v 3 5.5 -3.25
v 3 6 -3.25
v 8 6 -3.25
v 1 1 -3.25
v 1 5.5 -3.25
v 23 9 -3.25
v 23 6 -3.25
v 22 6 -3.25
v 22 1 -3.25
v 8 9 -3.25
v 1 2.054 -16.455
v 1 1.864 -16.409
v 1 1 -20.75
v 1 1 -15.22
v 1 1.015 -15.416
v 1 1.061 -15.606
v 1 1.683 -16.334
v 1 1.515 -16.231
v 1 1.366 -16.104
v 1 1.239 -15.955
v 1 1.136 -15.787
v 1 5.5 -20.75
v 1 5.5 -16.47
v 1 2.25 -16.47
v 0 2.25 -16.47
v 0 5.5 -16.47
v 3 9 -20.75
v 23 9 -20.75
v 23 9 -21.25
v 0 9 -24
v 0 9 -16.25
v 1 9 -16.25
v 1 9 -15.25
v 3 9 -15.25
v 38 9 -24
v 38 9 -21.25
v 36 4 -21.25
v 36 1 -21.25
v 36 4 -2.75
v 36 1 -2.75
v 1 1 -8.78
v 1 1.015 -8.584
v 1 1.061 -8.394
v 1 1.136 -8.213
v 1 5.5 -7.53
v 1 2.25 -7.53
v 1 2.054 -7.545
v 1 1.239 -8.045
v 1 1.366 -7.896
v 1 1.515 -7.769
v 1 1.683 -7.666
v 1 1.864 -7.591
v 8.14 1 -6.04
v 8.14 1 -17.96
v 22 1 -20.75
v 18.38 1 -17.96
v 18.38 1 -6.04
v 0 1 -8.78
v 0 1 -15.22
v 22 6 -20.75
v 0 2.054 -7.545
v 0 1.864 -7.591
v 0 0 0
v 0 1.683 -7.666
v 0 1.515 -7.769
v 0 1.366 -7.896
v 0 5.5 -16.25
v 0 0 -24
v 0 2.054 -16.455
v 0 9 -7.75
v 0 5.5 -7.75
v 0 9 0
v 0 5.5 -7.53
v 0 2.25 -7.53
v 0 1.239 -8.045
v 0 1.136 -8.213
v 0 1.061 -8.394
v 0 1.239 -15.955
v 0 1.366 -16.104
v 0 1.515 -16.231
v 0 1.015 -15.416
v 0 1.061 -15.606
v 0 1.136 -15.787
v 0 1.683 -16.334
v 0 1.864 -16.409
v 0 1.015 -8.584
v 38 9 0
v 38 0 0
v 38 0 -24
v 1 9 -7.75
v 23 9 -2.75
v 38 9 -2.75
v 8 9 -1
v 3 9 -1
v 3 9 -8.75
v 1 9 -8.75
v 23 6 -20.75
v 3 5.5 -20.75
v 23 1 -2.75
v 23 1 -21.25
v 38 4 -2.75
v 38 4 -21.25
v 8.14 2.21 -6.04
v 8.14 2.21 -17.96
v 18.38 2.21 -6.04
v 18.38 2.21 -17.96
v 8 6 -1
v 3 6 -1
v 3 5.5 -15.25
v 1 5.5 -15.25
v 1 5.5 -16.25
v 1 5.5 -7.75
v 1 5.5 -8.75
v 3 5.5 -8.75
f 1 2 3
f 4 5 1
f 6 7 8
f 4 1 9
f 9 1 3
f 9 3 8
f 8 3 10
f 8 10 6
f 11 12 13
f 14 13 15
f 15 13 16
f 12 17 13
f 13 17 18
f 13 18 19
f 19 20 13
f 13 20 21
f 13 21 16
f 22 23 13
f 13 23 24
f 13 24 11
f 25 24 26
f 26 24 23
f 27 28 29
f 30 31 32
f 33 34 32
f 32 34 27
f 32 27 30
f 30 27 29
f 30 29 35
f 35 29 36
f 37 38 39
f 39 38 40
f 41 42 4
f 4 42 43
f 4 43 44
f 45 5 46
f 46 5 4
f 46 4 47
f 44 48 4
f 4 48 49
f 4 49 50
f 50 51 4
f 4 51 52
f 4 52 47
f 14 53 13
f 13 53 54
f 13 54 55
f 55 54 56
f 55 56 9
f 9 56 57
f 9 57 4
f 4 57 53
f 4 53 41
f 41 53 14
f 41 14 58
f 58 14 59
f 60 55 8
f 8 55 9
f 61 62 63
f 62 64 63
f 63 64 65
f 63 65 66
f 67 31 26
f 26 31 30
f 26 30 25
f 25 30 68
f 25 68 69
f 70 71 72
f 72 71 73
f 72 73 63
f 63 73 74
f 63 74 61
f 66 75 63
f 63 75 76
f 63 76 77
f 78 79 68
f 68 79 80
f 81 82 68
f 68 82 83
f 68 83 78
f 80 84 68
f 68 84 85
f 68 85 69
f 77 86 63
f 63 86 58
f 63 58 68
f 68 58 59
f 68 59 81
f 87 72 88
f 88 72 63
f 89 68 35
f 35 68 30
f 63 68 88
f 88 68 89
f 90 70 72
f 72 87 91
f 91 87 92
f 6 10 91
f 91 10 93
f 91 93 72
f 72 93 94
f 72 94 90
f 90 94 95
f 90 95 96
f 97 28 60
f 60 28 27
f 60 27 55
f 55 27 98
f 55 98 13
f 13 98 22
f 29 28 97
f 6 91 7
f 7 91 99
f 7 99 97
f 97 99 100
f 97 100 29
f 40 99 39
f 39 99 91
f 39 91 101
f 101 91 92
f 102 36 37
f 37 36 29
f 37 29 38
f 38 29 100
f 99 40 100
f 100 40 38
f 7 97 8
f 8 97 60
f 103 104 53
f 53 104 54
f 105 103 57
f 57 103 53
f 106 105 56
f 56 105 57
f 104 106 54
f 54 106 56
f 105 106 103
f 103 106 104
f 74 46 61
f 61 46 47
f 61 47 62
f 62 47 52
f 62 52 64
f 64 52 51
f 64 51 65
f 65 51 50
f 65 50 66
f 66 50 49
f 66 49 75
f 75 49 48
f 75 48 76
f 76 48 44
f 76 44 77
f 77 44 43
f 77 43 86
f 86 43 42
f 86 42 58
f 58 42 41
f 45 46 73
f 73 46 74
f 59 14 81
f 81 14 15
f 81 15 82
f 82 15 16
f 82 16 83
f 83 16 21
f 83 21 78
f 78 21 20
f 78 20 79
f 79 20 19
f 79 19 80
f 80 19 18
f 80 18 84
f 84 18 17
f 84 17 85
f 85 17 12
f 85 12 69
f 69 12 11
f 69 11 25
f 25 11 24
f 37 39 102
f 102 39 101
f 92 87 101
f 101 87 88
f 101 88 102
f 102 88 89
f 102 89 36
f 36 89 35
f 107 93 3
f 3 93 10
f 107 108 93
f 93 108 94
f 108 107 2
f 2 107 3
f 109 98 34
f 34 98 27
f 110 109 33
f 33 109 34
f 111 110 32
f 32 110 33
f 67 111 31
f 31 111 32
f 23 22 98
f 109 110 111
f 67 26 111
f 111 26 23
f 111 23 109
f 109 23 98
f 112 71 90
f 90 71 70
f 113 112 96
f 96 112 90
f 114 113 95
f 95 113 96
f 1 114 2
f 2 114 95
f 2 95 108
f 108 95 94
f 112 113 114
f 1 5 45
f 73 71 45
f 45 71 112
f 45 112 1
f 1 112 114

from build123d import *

# Parameters (mm, degrees)
SKETCH1_W           = 40
SKETCH1_H           = 24
BOSS_EXTRUDE1_DEPTH = 1
SKETCH2_W           = 40
SKETCH2_H           = 24
SKETCH2_W_2         = 21
SKETCH2_H_2         = 17.5
SKETCH2_W_3         = 13
SKETCH2_H_3         = 18.5
BOSS_EXTRUDE3_DEPTH = 8
SKETCH3_W           = 1
SKETCH3_H           = 17.5
CUT_EXTRUDE2_DEPTH  = 3
SKETCH4_W           = 10.24
SKETCH4_H           = 11.92
BOSS_EXTRUDE4_DEPTH = 1.21
CUT_EXTRUDE3_DEPTH  = 2
SKETCH8_W           = 4
SKETCH8_H           = 18.5
CUT_EXTRUDE4_DEPTH  = 5
SKETCH11_W          = 24
SKETCH11_H          = 9
CUT_EXTRUDE5_DEPTH  = 2
SKETCH12_W          = 4
SKETCH12_H          = 3
CUT_EXTRUDE6_DEPTH  = 3
BOSS_EXTRUDE5_DEPTH = 3.5
SKETCH14_W          = 1
SKETCH14_H          = 2.25
CUT_EXTRUDE7_DEPTH  = 3


with BuildPart() as part:
    # Sketch1 → Boss-Extrude1 (new body)
    with BuildSketch(Plane(origin=(0, 0, 0), x_dir=(1, 0, 0), z_dir=(0, 1, 0))):
        with Locations((20, 12)):
            Rectangle(SKETCH1_W, SKETCH1_H)
    extrude(amount=BOSS_EXTRUDE1_DEPTH)

    # Sketch2 → Boss-Extrude3 (add)
    with BuildSketch(Plane(origin=(0, 1, 0), x_dir=(1, 0, 0), z_dir=(0, 1, 0))):
        with Locations((20, 12)):
            Rectangle(SKETCH2_W, SKETCH2_H)
        with Locations((11.5, 12)):
            Rectangle(SKETCH2_W_2, SKETCH2_H_2, mode=Mode.SUBTRACT)
        with Locations((29.5, 12)):
            Rectangle(SKETCH2_W_3, SKETCH2_H_3, mode=Mode.SUBTRACT)
    extrude(amount=BOSS_EXTRUDE3_DEPTH)

    # Sketch3 → Cut-Extrude2 (cut)
    with BuildSketch(Plane(origin=(0, 9, 0), x_dir=(1, 0, 0), z_dir=(0, 1, 0))):
        with Locations((22.5, 12)):
            Rectangle(SKETCH3_W, SKETCH3_H)
    extrude(amount=-CUT_EXTRUDE2_DEPTH, mode=Mode.SUBTRACT)

    # Sketch4 → Boss-Extrude4 (add)
    with BuildSketch(Plane(origin=(0, 1, 0), x_dir=(1, 0, 0), z_dir=(0, 1, 0))):
        with Locations((13.26, 12)):
            Rectangle(SKETCH4_W, SKETCH4_H)
    extrude(amount=BOSS_EXTRUDE4_DEPTH)

    # Sketch5 → Cut-Extrude3 (cut)
    with BuildSketch(Plane(origin=(1, 0, 0), x_dir=(0, 0, -1), z_dir=(1, 0, 0))):
        with BuildLine():
            Line((7.53, 2.25), (7.53, 2.96))
            Line((7.53, 2.96), (7.53, 9))
            Line((7.53, 9), (16.47, 9))
            Line((16.47, 9), (16.47, 2.96))
            Line((16.47, 2.96), (16.47, 2.25))
            ThreePointArc((16.47, 2.25), (16.103883476, 1.366116524), (15.22, 1))
            Line((15.22, 1), (8.78, 1))
            ThreePointArc((8.78, 1), (7.896116524, 1.366116524), (7.53, 2.25))
        make_face()
    extrude(amount=-CUT_EXTRUDE3_DEPTH, mode=Mode.SUBTRACT)

    # Sketch8 → Cut-Extrude4 (cut)
    with BuildSketch(Plane(origin=(0, 9, 0), x_dir=(1, 0, 0), z_dir=(0, 1, 0))):
        with Locations((38, 12)):
            Rectangle(SKETCH8_W, SKETCH8_H)
    extrude(amount=-CUT_EXTRUDE4_DEPTH, mode=Mode.SUBTRACT)

    # Sketch11 → Cut-Extrude5 (cut)
    with BuildSketch(Plane(origin=(40, 0, 0), x_dir=(0, 0, -1), z_dir=(1, 0, 0))):
        with Locations((12, 4.5)):
            Rectangle(SKETCH11_W, SKETCH11_H)
    extrude(amount=-CUT_EXTRUDE5_DEPTH, mode=Mode.SUBTRACT)

    # Sketch12 → Cut-Extrude6 (cut)
    with BuildSketch(Plane(origin=(0, 9, 0), x_dir=(1, 0, 0), z_dir=(0, 1, 0))):
        with Locations((6, 2.5)):
            Rectangle(SKETCH12_W, SKETCH12_H)
    extrude(amount=-CUT_EXTRUDE6_DEPTH, mode=Mode.SUBTRACT)

    # Sketch13 → Boss-Extrude5 (add)
    with BuildSketch(Plane(origin=(0, 9, 0), x_dir=(1, 0, 0), z_dir=(0, 1, 0))):
        Polygon((1, 16.47), (1, 20.75), (3, 20.75), (3, 15.25), (1, 15.25), (1, 16.25), (0, 16.25), (0, 16.47), align=None)
        Polygon((1, 3.25), (3, 3.25), (3, 8.75), (1, 8.75), (1, 7.75), (0, 7.75), (0, 7.53), (1, 7.53), align=None)
    extrude(amount=-BOSS_EXTRUDE5_DEPTH)

    # Sketch14 → Cut-Extrude7 (cut)
    with BuildSketch(Plane(origin=(0, 9, 0), x_dir=(1, 0, 0), z_dir=(0, 1, 0))):
        with Locations((3.5, 2.125)):
            Rectangle(SKETCH14_W, SKETCH14_H)
    extrude(amount=-CUT_EXTRUDE7_DEPTH, mode=Mode.SUBTRACT)


solid = part.part
